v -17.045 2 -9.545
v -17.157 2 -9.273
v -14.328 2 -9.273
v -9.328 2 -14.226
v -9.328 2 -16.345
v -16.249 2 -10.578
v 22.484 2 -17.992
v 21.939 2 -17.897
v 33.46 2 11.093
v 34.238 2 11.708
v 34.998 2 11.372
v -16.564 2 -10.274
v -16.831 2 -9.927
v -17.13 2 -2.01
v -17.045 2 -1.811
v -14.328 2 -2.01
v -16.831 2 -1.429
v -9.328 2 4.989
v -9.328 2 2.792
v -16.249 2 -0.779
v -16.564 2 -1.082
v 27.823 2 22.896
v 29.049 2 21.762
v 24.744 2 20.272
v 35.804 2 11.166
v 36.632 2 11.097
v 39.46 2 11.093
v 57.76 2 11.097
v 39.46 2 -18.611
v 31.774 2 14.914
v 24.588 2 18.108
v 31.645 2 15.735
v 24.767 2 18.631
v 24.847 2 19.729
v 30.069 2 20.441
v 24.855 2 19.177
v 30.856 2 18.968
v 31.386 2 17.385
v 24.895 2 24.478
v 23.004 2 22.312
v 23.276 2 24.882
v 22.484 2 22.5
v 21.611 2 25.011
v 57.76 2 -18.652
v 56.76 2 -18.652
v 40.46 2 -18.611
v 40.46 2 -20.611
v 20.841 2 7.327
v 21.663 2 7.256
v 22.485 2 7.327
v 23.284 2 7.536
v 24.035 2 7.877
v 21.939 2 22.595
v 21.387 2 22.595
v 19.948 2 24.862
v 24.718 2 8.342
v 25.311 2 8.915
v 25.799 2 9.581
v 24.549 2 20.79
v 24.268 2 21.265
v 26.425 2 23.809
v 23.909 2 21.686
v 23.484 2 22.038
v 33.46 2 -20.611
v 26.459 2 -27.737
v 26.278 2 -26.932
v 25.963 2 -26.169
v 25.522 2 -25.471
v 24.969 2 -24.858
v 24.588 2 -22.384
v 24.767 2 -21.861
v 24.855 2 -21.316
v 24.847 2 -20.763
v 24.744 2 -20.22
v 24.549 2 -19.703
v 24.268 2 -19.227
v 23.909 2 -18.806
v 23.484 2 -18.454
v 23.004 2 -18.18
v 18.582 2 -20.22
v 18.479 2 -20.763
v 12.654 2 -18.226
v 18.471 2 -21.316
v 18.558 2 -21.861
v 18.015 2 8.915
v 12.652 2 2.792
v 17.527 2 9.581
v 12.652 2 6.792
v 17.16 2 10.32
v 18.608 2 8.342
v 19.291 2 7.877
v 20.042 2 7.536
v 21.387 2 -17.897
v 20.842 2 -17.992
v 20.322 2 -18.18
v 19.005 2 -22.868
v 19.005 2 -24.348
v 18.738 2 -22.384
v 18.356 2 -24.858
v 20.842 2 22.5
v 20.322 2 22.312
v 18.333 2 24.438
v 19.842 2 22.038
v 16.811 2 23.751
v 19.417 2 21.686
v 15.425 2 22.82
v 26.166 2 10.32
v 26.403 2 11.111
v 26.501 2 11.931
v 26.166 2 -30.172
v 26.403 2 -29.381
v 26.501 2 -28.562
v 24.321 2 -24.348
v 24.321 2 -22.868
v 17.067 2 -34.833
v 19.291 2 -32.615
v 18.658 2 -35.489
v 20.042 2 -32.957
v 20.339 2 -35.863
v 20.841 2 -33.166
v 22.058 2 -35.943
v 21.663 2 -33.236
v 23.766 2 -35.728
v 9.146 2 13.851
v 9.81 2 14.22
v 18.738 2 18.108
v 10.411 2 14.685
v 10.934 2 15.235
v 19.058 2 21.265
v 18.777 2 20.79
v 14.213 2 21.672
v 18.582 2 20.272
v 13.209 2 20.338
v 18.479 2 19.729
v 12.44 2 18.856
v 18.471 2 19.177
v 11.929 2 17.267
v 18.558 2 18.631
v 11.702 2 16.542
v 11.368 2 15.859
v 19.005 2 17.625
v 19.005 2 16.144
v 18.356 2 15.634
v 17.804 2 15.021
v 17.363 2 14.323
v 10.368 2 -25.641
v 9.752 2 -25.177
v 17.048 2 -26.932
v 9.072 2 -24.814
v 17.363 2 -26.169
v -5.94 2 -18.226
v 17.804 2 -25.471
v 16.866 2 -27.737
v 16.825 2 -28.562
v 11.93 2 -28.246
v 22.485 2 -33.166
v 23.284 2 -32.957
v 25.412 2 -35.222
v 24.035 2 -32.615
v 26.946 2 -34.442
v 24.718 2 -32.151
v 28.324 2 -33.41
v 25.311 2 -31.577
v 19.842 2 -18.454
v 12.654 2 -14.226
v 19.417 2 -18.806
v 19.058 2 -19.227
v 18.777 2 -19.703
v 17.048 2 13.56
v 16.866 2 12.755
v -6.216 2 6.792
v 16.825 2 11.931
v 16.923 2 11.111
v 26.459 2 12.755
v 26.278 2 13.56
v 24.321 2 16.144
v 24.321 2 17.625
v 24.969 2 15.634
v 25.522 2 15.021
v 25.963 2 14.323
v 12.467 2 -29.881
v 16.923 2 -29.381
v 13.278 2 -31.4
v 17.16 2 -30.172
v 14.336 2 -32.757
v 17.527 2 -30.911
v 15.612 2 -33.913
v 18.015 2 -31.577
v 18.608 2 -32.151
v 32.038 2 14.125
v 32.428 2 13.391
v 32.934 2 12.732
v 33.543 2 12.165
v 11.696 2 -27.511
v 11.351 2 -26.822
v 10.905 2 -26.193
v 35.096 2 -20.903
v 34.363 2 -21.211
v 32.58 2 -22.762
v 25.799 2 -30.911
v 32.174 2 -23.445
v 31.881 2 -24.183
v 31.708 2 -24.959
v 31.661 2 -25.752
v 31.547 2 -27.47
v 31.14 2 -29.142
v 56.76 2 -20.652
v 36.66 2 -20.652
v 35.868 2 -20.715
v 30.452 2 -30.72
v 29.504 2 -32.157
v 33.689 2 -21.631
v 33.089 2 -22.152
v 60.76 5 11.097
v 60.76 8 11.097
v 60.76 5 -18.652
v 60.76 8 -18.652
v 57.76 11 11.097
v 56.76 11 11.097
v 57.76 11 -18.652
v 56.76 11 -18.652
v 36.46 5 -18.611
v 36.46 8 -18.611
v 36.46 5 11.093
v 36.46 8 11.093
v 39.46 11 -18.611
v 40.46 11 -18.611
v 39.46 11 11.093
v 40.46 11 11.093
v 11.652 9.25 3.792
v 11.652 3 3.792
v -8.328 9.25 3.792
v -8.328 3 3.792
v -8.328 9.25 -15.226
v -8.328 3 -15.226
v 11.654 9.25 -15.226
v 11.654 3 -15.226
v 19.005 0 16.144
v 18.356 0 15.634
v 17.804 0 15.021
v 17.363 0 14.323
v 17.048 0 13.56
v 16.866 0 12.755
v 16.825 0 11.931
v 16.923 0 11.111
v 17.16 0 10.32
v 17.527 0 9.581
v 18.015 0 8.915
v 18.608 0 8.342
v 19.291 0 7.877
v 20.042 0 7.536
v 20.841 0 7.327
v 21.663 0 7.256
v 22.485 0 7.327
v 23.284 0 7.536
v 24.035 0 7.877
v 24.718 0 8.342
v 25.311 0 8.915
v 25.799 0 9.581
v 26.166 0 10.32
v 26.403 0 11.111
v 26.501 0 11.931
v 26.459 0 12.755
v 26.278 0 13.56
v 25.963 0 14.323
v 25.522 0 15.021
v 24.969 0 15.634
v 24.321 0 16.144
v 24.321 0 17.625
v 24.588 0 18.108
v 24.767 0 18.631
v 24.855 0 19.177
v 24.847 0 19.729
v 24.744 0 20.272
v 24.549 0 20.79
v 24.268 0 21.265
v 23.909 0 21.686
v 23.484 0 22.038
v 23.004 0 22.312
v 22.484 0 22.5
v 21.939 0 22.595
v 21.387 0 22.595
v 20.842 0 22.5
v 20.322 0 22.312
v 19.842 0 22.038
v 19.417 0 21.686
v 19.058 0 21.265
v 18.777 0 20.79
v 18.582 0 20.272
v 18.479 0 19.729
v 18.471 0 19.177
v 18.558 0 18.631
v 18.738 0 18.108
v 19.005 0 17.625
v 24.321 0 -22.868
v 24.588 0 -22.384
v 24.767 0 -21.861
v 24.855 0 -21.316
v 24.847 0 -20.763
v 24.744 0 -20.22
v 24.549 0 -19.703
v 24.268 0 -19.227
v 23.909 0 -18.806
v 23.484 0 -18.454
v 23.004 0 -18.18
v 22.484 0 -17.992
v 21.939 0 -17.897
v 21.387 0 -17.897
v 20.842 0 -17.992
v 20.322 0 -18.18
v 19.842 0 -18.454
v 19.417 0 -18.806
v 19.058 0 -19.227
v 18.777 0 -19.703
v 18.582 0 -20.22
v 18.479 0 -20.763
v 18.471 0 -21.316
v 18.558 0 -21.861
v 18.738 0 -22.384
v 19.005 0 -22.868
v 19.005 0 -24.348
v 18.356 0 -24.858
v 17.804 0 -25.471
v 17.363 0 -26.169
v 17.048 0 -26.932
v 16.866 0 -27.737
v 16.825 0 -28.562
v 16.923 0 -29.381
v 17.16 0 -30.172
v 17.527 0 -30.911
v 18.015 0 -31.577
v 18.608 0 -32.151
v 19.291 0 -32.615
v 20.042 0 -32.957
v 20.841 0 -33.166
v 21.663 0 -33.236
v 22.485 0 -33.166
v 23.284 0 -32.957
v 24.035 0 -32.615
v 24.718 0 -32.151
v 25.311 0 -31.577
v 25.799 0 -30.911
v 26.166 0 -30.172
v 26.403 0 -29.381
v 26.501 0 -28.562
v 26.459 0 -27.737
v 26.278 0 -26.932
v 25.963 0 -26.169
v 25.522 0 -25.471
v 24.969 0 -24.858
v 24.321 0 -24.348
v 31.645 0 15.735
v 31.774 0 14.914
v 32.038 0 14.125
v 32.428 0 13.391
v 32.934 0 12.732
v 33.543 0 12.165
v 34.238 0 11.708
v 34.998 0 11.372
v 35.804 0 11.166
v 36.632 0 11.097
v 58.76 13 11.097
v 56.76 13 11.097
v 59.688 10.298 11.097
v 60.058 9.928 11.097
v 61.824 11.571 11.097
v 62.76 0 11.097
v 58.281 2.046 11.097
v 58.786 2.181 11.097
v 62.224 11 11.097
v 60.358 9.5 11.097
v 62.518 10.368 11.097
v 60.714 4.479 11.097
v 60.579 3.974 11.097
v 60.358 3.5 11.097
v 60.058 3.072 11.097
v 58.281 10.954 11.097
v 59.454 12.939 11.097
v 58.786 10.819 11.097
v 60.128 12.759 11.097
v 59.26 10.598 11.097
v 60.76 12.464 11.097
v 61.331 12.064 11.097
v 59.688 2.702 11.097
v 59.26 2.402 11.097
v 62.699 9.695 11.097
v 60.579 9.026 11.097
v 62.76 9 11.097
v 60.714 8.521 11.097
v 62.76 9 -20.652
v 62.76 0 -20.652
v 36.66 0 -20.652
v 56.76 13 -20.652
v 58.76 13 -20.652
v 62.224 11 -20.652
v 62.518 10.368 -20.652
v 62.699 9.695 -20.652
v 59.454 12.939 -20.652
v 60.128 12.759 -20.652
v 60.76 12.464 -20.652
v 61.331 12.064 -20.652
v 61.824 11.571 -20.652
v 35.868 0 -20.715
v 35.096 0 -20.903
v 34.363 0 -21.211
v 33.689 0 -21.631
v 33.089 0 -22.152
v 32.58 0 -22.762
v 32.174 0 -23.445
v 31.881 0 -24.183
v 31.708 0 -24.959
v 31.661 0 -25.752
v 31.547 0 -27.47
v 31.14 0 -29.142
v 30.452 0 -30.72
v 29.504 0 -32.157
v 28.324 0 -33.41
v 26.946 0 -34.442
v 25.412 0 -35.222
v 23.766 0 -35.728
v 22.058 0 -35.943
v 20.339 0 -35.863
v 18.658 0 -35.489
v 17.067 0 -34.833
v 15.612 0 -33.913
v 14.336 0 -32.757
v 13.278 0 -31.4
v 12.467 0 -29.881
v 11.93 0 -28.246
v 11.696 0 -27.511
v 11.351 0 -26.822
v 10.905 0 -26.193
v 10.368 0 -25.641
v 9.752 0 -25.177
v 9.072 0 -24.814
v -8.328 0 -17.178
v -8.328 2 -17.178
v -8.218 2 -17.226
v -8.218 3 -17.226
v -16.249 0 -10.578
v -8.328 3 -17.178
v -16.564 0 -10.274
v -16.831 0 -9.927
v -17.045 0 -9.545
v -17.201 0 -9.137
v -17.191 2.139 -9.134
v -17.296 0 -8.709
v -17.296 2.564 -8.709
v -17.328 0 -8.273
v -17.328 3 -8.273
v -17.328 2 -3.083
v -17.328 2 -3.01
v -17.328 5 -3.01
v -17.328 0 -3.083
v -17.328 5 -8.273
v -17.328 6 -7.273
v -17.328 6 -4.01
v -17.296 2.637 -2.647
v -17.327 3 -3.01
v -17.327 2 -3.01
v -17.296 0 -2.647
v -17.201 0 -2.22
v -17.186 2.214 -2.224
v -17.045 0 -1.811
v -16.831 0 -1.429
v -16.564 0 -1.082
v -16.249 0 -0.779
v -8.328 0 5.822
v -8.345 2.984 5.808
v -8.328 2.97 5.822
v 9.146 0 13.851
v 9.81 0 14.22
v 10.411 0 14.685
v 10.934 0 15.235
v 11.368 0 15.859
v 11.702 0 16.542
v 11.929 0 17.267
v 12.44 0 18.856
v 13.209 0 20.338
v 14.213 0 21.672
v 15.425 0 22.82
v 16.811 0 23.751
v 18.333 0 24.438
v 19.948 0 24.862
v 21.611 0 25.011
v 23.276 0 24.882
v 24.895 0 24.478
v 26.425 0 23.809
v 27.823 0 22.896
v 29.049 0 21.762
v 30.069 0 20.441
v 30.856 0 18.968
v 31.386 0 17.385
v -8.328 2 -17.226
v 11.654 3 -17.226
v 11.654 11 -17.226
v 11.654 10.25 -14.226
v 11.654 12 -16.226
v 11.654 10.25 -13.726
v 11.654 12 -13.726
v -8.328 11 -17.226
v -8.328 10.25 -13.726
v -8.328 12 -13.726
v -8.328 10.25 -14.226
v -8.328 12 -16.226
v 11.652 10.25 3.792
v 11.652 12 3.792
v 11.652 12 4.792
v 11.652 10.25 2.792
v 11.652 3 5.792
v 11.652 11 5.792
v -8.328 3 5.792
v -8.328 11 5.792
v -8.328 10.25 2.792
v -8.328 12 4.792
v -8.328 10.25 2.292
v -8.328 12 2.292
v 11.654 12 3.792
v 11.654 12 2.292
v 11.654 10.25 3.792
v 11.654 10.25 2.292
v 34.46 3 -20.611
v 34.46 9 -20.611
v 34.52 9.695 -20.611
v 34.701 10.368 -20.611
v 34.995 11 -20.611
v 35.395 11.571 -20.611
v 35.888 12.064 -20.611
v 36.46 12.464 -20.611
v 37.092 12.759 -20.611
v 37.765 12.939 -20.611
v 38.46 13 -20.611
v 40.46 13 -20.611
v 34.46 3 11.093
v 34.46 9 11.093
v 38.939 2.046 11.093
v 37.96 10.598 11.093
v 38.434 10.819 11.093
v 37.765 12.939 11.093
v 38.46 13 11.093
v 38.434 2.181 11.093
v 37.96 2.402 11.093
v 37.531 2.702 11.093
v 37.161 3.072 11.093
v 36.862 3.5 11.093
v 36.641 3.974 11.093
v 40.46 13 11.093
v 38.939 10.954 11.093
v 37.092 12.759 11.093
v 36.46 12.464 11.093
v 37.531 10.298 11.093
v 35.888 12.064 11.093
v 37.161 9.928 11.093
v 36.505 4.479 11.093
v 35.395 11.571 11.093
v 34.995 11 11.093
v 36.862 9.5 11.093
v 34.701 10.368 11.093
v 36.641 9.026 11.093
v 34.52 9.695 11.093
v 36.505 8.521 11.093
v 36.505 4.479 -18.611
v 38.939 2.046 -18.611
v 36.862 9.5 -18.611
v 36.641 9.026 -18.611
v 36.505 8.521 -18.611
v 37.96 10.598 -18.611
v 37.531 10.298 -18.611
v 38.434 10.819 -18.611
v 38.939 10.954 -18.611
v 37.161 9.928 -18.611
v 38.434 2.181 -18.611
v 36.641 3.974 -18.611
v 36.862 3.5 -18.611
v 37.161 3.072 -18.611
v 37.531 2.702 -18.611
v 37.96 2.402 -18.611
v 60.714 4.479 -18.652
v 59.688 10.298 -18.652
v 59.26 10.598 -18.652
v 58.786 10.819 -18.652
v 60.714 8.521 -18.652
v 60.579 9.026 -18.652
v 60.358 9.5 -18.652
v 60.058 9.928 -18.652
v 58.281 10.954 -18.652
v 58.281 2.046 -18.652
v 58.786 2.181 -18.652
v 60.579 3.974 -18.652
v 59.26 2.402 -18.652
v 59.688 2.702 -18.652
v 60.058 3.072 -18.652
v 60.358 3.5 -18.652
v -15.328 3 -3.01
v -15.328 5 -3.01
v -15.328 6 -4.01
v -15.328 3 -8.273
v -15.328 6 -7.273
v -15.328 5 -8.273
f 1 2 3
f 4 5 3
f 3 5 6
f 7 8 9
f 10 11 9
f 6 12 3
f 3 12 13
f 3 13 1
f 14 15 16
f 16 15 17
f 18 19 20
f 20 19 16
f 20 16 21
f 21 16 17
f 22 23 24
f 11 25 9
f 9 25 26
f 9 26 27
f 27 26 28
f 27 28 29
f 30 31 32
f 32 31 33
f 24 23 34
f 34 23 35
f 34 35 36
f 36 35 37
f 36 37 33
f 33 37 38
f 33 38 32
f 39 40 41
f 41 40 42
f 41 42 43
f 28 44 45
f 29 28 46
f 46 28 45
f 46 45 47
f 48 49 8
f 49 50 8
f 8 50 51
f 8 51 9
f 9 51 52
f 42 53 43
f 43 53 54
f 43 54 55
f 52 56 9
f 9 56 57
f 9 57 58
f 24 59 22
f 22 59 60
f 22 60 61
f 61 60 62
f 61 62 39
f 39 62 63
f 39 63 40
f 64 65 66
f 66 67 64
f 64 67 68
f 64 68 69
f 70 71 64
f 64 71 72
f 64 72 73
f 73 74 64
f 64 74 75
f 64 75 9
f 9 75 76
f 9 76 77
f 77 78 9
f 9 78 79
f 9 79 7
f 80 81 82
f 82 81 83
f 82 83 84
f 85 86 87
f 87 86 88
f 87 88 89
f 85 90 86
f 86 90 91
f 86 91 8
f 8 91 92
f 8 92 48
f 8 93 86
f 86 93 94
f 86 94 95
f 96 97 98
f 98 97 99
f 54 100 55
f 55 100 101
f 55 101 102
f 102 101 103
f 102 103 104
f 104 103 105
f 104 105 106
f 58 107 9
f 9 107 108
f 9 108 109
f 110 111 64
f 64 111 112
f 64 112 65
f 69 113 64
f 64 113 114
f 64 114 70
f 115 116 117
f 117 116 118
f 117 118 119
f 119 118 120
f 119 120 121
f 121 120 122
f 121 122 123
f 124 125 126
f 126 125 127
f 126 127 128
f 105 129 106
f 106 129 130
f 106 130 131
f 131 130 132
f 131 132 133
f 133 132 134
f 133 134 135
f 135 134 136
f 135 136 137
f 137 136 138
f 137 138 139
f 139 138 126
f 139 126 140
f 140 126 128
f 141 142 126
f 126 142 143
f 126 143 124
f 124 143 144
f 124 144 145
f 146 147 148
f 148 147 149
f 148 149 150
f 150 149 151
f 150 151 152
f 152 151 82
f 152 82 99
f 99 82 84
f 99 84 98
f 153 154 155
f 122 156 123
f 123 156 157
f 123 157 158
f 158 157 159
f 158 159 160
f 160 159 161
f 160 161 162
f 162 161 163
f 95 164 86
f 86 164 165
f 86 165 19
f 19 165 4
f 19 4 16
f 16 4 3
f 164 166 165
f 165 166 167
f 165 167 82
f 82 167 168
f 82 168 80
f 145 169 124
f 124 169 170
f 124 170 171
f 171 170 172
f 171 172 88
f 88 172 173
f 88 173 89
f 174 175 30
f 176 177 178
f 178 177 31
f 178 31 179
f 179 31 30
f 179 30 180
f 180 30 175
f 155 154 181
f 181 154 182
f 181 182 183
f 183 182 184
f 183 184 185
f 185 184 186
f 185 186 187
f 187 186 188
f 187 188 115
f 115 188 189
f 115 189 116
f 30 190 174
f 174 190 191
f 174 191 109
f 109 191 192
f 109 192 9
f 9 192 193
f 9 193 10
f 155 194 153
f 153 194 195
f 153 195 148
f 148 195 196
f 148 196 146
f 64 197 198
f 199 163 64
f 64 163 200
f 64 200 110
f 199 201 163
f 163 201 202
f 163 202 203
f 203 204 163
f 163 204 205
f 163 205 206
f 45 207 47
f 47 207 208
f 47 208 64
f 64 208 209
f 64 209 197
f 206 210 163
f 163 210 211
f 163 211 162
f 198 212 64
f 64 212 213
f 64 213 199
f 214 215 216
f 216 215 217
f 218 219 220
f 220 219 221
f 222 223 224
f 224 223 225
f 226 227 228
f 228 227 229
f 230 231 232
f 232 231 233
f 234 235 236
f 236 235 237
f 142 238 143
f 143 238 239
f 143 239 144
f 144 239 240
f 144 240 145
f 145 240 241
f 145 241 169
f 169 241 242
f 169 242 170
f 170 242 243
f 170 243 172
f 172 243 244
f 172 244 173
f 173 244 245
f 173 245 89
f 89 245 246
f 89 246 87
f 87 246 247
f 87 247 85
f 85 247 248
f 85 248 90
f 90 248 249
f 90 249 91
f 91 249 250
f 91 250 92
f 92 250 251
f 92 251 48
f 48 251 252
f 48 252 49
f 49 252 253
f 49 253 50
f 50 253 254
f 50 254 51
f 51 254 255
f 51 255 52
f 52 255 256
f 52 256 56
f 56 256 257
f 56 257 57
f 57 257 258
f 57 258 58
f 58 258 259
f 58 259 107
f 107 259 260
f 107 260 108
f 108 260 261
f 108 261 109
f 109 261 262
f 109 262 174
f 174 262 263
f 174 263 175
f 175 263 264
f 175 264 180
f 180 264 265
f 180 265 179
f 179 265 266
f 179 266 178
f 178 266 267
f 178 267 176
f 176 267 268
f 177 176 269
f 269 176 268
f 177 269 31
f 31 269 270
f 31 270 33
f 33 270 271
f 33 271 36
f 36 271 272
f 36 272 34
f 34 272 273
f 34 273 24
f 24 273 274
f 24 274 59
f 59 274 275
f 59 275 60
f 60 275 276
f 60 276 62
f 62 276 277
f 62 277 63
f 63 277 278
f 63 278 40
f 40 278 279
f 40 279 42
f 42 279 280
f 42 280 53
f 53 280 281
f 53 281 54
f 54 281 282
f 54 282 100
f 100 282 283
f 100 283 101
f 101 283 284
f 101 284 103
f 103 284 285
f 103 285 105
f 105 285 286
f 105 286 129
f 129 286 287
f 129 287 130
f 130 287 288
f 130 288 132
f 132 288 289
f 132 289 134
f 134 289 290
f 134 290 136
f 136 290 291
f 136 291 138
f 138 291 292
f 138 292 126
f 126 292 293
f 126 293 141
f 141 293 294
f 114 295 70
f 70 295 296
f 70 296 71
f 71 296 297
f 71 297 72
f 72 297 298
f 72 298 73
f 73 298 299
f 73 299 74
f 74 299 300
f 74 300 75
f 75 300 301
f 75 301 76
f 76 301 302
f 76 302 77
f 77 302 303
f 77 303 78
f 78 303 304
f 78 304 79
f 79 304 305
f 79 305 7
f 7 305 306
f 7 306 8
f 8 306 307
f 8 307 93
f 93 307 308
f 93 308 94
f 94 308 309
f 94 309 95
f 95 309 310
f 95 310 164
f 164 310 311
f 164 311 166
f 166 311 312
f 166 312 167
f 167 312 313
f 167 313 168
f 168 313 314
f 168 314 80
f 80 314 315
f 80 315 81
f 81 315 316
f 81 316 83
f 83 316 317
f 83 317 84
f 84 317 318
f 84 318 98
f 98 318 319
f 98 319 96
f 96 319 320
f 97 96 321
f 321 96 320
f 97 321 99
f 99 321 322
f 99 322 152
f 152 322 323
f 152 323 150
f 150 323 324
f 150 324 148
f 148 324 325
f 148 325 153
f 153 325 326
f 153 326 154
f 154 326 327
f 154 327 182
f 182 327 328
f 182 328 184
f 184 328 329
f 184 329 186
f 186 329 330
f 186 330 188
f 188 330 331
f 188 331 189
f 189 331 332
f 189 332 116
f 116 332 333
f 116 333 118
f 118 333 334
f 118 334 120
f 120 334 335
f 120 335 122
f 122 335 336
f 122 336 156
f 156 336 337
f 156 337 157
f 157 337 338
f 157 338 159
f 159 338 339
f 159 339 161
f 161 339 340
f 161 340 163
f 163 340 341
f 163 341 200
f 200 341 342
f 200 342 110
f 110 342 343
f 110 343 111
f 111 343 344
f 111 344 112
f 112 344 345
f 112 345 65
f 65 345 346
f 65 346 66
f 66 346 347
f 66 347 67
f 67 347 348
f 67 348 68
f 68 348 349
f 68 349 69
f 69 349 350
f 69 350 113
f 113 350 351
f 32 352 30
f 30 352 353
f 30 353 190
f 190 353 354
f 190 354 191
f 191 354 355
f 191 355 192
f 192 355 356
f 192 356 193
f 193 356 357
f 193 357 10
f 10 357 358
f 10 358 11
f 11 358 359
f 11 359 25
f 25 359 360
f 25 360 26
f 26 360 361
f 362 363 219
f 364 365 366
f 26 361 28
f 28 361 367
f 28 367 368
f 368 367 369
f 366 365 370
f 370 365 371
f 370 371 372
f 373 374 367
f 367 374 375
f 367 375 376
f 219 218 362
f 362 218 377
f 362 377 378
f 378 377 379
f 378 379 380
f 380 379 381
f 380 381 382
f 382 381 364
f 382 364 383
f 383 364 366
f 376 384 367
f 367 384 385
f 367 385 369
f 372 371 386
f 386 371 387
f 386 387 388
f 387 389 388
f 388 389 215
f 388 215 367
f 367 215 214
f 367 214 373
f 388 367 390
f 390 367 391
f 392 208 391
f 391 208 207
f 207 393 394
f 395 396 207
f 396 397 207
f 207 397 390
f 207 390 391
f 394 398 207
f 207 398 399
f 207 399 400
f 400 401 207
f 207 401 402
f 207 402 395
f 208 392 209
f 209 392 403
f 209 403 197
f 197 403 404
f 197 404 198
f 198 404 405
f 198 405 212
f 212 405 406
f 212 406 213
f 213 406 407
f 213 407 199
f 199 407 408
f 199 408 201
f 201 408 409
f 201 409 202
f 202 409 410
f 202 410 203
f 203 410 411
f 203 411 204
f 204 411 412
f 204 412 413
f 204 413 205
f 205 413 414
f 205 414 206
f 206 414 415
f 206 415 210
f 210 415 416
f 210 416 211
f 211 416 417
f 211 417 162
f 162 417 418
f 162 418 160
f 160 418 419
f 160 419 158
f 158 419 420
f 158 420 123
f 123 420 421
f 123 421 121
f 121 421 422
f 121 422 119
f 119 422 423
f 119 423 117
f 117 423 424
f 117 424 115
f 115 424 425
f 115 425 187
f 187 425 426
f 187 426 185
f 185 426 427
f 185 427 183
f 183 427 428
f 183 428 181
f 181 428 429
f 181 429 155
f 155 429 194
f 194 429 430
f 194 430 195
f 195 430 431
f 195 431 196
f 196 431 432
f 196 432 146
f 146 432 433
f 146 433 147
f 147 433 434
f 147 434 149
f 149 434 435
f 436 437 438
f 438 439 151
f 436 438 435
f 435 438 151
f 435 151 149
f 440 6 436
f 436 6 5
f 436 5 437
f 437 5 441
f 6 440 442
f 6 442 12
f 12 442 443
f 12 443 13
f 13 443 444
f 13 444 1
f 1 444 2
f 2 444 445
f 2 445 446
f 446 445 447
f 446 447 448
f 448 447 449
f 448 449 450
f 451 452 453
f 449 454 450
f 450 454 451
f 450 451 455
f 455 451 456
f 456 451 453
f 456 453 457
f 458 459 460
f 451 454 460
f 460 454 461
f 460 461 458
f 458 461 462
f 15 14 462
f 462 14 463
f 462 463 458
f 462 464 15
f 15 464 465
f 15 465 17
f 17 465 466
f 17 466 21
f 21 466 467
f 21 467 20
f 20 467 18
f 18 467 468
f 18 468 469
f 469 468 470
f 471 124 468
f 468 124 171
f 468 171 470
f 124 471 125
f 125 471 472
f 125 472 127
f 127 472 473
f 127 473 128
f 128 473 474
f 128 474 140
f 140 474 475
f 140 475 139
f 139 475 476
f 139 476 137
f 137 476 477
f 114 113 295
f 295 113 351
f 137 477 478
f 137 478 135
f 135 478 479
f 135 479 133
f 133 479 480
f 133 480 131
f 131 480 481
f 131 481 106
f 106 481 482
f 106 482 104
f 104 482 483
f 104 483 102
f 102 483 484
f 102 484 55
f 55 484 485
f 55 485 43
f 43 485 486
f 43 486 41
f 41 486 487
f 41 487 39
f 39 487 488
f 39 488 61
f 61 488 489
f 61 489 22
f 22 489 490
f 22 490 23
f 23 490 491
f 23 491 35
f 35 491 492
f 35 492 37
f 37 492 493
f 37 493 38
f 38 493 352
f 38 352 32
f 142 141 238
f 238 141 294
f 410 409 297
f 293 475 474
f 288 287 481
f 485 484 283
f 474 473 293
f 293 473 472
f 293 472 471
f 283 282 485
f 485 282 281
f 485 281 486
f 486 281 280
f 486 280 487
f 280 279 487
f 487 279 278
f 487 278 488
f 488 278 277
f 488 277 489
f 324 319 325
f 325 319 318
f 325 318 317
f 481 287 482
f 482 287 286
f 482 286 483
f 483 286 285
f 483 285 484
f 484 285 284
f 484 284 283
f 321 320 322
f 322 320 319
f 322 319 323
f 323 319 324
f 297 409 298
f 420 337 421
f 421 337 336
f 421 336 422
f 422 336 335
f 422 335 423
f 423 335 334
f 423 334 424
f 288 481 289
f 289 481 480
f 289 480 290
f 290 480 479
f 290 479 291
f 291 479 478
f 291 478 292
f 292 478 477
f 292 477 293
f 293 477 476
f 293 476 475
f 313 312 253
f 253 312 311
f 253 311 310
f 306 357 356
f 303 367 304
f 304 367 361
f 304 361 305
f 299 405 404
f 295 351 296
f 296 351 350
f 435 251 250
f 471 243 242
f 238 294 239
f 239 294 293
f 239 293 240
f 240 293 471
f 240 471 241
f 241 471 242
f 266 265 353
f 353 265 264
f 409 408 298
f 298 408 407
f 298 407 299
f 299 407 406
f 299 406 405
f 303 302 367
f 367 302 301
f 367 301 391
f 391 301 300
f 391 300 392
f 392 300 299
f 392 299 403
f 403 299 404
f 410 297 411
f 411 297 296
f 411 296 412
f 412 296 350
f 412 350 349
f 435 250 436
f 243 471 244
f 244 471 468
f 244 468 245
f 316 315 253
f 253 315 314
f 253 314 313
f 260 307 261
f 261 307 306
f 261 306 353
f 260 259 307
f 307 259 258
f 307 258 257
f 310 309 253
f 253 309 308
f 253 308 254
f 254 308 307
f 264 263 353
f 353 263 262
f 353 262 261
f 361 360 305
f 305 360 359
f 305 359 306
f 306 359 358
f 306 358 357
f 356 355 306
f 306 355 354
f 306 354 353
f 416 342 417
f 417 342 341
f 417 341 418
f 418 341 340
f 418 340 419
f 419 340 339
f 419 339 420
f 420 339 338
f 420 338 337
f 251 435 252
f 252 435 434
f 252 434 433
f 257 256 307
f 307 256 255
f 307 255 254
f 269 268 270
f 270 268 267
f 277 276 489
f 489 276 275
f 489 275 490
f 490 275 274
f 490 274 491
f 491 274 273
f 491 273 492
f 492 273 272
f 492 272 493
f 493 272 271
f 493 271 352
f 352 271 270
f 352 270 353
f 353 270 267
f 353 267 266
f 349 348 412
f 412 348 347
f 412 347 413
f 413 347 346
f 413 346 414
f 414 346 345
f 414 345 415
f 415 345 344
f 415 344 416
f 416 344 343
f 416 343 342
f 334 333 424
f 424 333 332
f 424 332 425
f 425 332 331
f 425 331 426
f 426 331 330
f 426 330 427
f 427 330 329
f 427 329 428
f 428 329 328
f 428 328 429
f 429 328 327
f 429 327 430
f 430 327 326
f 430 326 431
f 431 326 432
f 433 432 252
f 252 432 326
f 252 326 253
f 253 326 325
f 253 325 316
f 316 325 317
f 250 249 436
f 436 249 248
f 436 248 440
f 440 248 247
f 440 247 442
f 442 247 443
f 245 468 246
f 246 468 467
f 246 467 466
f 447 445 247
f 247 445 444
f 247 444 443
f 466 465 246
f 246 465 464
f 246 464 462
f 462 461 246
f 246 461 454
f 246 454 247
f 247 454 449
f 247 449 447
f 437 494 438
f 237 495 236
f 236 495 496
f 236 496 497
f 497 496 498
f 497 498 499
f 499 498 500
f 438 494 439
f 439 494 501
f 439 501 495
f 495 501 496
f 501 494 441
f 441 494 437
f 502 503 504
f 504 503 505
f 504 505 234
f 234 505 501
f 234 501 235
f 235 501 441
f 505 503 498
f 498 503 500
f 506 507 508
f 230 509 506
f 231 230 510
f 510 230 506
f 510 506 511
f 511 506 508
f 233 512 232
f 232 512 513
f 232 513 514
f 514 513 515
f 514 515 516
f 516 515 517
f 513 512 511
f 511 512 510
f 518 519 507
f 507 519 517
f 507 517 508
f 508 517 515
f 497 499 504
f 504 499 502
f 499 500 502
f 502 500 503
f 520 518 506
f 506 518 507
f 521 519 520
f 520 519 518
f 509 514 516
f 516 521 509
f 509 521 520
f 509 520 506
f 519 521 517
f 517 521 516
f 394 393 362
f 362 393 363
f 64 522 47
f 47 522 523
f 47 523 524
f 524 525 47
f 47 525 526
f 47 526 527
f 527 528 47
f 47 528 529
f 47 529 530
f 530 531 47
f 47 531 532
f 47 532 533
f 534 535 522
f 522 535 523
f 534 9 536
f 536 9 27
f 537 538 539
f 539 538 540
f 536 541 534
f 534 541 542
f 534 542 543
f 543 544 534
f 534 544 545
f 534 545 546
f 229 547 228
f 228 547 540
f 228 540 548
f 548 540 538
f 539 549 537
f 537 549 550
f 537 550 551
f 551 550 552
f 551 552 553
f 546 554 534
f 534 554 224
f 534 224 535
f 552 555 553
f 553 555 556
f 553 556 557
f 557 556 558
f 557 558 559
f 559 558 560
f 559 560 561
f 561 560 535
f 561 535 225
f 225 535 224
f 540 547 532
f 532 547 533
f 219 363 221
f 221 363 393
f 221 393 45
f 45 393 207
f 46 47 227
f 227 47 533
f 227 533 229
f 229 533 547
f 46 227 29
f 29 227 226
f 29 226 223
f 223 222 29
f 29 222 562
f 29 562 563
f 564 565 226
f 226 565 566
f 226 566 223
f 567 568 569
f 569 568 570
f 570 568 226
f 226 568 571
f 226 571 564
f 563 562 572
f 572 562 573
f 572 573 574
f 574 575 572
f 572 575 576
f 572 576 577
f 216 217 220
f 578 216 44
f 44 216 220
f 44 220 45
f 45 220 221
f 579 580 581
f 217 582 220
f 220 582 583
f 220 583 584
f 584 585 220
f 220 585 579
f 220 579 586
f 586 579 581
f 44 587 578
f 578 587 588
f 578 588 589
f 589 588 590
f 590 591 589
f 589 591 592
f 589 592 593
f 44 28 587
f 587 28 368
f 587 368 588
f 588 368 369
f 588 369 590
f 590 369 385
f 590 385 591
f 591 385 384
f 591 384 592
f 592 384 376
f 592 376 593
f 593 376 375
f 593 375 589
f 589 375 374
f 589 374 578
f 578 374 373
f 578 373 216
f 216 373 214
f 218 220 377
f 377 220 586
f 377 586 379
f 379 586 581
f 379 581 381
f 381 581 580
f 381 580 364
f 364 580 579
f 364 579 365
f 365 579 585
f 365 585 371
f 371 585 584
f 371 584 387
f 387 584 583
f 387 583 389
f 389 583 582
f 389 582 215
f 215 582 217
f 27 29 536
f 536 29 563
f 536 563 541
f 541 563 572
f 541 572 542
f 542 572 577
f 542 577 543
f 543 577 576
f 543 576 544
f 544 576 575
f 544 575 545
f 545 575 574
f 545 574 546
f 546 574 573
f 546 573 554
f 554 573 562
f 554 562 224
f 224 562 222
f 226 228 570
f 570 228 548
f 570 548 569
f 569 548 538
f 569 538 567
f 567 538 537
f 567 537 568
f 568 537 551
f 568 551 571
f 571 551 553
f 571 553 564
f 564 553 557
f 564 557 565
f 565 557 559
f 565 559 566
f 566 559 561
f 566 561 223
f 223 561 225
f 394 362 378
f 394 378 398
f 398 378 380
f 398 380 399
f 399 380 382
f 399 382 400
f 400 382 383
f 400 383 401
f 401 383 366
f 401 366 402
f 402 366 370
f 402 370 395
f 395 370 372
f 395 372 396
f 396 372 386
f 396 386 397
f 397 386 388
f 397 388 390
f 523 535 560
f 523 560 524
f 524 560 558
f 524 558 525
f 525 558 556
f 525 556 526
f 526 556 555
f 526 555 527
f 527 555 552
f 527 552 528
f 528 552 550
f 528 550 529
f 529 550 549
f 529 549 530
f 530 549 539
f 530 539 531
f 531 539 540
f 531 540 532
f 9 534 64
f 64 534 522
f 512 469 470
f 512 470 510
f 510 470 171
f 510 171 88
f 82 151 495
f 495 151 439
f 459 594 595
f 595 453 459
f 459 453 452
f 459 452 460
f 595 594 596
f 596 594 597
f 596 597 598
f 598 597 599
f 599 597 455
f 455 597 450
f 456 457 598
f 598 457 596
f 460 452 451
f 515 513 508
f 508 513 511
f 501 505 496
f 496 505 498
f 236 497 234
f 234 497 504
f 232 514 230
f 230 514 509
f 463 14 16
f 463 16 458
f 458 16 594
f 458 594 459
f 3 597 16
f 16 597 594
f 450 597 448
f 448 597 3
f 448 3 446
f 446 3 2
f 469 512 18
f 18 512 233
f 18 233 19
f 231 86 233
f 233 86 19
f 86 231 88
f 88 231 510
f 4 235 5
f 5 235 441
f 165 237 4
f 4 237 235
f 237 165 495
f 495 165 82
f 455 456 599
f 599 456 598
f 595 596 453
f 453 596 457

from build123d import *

# Parameters (mm, degrees)
BOSS_EXTRUDE3_DEPTH  = 2
SKETCH2_W            = 19.982686102
SKETCH2_H            = 2
SKETCH2_W_2          = 19.980275276
BOSS_EXTRUDE4_DEPTH  = 10
SKETCH4_W            = 19.982686102
SKETCH4_H            = 1.75
BOSS_EXTRUDE6_DEPTH  = 1.5
SKETCH5_W            = 19.982686102
SKETCH5_H            = 1.75
BOSS_EXTRUDE7_DEPTH  = 1.5
SKETCH6_W            = 2
SKETCH6_H            = 31.703693322
SKETCH6_H_2          = 31.749526842
BOSS_EXTRUDE8_DEPTH  = 11
SKETCH7_W            = 31.749526842
SKETCH7_H            = 2
BOSS_EXTRUDE9_DEPTH  = 4
SKETCH8_W            = 31.703693322
SKETCH8_H            = 2
BOSS_EXTRUDE10_DEPTH = 4
SKETCH9_W            = 2
SKETCH9_H            = 9
BOSS_EXTRUDE11_DEPTH = 4
SKETCH11_W           = 2
SKETCH11_H           = 9
BOSS_EXTRUDE12_DEPTH = 4
FILLET3_R            = 3
FILLET4_R            = 4
FILLET5_R            = 4
CHAMFER3_SIZE        = 1
SKETCH13_W           = 2
SKETCH13_H           = 5.263388165
BOSS_EXTRUDE13_DEPTH = 4
CHAMFER4_SIZE        = 1
CHAMFER5_SIZE        = 1


with BuildPart() as part:
    # Sketch1 → Boss-Extrude3 (new body)
    with BuildSketch(Plane(origin=(0, 0, 0), x_dir=(1, 0, 0), z_dir=(0, 1, 0))):
        with BuildLine():
            Line((-8.328383402, 17.178082192), (-11.926539406, 14.179618856))
            Line((-11.926539406, 14.179618856), (-16.248936601, 10.577621193))
            ThreePointArc((-16.248936601, 10.577621193), (-17.045151666, 9.545423543), (-17.328383402, 8.272957354))
            Line((-17.328383402, 8.272957354), (-17.328383402, 3.08320703))
            ThreePointArc((-17.328383402, 3.08320703), (-17.045151666, 1.810740841), (-16.248936601, 0.778543191))
            Line((-16.248936601, 0.778543191), (-11.926539406, -2.823454472))
            Line((-11.926539406, -2.823454472), (-8.328383402, -5.821917808))
            Line((-8.328383402, -5.821917808), (9.145578492, -13.850782578))
            ThreePointArc((9.145578492, -13.850782578), (10.93396709, -15.23549913), (11.929216114, -17.266571036))
            ThreePointArc((11.929216114, -17.266571036), (22.445955603, -24.981411148), (31.645385182, -15.735273423))
            ThreePointArc((31.645385182, -15.735273423), (33.227096416, -12.435935871), (36.632269474, -11.097192))
            Line((36.632269474, -11.097192), (62.759585841, -11.097192))
            Line((62.759585841, -11.097192), (62.759585841, 20.652334842))
            Line((62.759585841, 20.652334842), (36.659964719, 20.652334842))
            ThreePointArc((36.659964719, 20.652334842), (33.089388299, 22.15219427), (31.660956961, 25.751941231))
            ThreePointArc((31.660956961, 25.751941231), (22.916780781, 35.872236959), (11.929724224, 28.245600027))
            ThreePointArc((11.929724224, 28.245600027), (10.905359885, 26.19326698), (9.072373225, 24.814298837))
            Line((9.072373225, 24.814298837), (-8.328383402, 17.178082192))
        make_face()
        with BuildLine():
            Line((24.320629097, -16.144178085), (24.320629097, -17.62452967))
            ThreePointArc((24.320629097, -17.62452967), (21.662941444, -22.60685858), (19.005253792, -17.62452967))
            Line((19.005253792, -17.62452967), (19.005253792, -16.144178085))
            ThreePointArc((19.005253792, -16.144178085), (21.662941444, -7.256310151), (24.320629097, -16.144178085))
        make_face(mode=Mode.SUBTRACT)
        with BuildLine():
            Line((24.320629097, 24.348091169), (24.320629097, 22.867739584))
            ThreePointArc((24.320629097, 22.867739584), (21.662941444, 17.885410674), (19.005253792, 22.867739584))
            Line((19.005253792, 22.867739584), (19.005253792, 24.348091169))
            ThreePointArc((19.005253792, 24.348091169), (21.662941444, 33.235959102), (24.320629097, 24.348091169))
        make_face(mode=Mode.SUBTRACT)
    extrude(amount=BOSS_EXTRUDE3_DEPTH)

    # Sketch2 → Boss-Extrude4 (add)
    with BuildSketch(Plane(origin=(0, 2, 0), x_dir=(1, 0, 0), z_dir=(0, 1, 0))):
        with Locations((1.662959649, 16.226428568)):
            Rectangle(SKETCH2_W, SKETCH2_H)
        with Locations((1.661754236, -4.792288058)):
            Rectangle(SKETCH2_W_2, SKETCH2_H)
    extrude(amount=BOSS_EXTRUDE4_DEPTH)

    # Sketch4 → Boss-Extrude6 (add)
    with BuildSketch(Plane.XY.offset(-15.226428568)):
        with Locations((1.662959649, 11.125)):
            Rectangle(SKETCH4_W, SKETCH4_H)
    extrude(amount=BOSS_EXTRUDE6_DEPTH)

    # Sketch5 → Boss-Extrude7 (add)
    with BuildSketch(Plane(origin=(0, 0, 3.792288058), x_dir=(-1, 0, 0), z_dir=(0, 0, -1))):
        with Locations((-1.662959649, 11.125)):
            Rectangle(SKETCH5_W, SKETCH5_H)
    extrude(amount=BOSS_EXTRUDE7_DEPTH)

    # Sketch6 → Boss-Extrude8 (add)
    with BuildSketch(Plane(origin=(0, 2, 0), x_dir=(1, 0, 0), z_dir=(0, 1, 0))):
        with Locations((35.459585841, 4.759099079)):
            Rectangle(SKETCH6_W, SKETCH6_H)
        with Locations((61.759585841, 4.777571421)):
            Rectangle(SKETCH6_W, SKETCH6_H_2)
    extrude(amount=BOSS_EXTRUDE8_DEPTH)

    # Sketch7 → Boss-Extrude9 (add)
    with BuildSketch(Plane.ZY.offset(-60.759585841)):
        with Locations((-4.777571421, 12)):
            Rectangle(SKETCH7_W, SKETCH7_H)
    extrude(amount=BOSS_EXTRUDE9_DEPTH)

    # Sketch8 → Boss-Extrude10 (add)
    with BuildSketch(Plane(origin=(36.459585841, 0, 0), x_dir=(0, 0, -1), z_dir=(1, 0, 0))):
        with Locations((4.759099079, 12)):
            Rectangle(SKETCH8_W, SKETCH8_H)
    extrude(amount=BOSS_EXTRUDE10_DEPTH)

    # Sketch9 → Boss-Extrude11 (add)
    with BuildSketch(Plane(origin=(36.459585841, 0, 0), x_dir=(0, 0, -1), z_dir=(1, 0, 0))):
        with Locations((19.61094574, 6.5)):
            Rectangle(SKETCH9_W, SKETCH9_H)
    extrude(amount=BOSS_EXTRUDE11_DEPTH)

    # Sketch11 → Boss-Extrude12 (add)
    with BuildSketch(Plane.ZY.offset(-60.759585841)):
        with Locations((-19.652334842, 6.5)):
            Rectangle(SKETCH11_W, SKETCH11_H)
    extrude(amount=BOSS_EXTRUDE12_DEPTH)

    # Fillet3
    fillet3_edges = [part.edges().sort_by_distance(p)[0] for p in [
        (36.459585841, 2, -3.759099079),
        (36.459585841, 11, -3.759099079),
        (60.759585841, 11, -3.777571421),
        (60.759585841, 2, -3.777571421),
    ]]
    fillet(fillet3_edges, radius=FILLET3_R)

    # Fillet4
    fillet4_edges = [part.edges().sort_by_distance(p)[0] for p in [
        (62.759585841, 13, -4.777571421),
    ]]
    fillet(fillet4_edges, radius=FILLET4_R)

    # Fillet5
    fillet5_edges = [part.edges().sort_by_distance(p)[0] for p in [
        (34.459585841, 13, -4.759099079),
    ]]
    fillet(fillet5_edges, radius=FILLET5_R)

    # Chamfer3
    # the kernel refuses this chamfer: 1 mm, written as the material it adds along each edge
    with BuildSketch(Plane(origin=(34.459585841, 2, -20.61094574), x_dir=(0, 1, 0), z_dir=(0, 0, 1))) as chamfer3_piece_1:
        Polygon((CHAMFER3_SIZE, 0), (0, CHAMFER3_SIZE), (0, 0), align=None)
    extrude(amount=31.703693323)
    with BuildSketch(Plane(origin=(11.6543027, 2, -17.226428568), x_dir=(0, 0, -1), z_dir=(-1, 0, 0))) as chamfer3_piece_2_section:
        Polygon((CHAMFER3_SIZE, 0), (0, -CHAMFER3_SIZE), (0, 0), align=None)
    chamfer3_piece_2 = extrude(amount=22.444201507, mode=Mode.PRIVATE)
    chamfer3_piece_2 = split(chamfer3_piece_2, bisect_by=Plane(origin=(8.445196081, 2, -24.539065946), z_dir=(0.40185152236711835, 0, 0.9157048399846042)), keep=Keep.TOP, mode=Mode.PRIVATE)
    add(chamfer3_piece_2)
    with BuildSketch(Plane(origin=(11.651891874, 2, 5.792288058), x_dir=(0, 0, 1), z_dir=(-1, 0, 0))) as chamfer3_piece_3_section:
        Polygon((CHAMFER3_SIZE, 0), (0, CHAMFER3_SIZE), (0, 0), align=None)
    chamfer3_piece_3 = extrude(amount=19.980275276, mode=Mode.PRIVATE)
    chamfer3_piece_3 = split(chamfer3_piece_3, bisect_by=Plane(origin=(8.15775509, 2, 13.396901508), z_dir=(0.4175125238289849, 0, -0.9086711684905334)), keep=Keep.TOP, mode=Mode.PRIVATE)
    add(chamfer3_piece_3)

    # Sketch13 → Boss-Extrude13 (add)
    with BuildSketch(Plane(origin=(0, 2, 0), x_dir=(1, 0, 0), z_dir=(0, 1, 0))):
        with Locations((-16.328383402, 5.641263272)):
            Rectangle(SKETCH13_W, SKETCH13_H)
    extrude(amount=BOSS_EXTRUDE13_DEPTH)

    # Chamfer4
    # the kernel refuses this chamfer: 1 mm, written as the material it adds along each edge
    with BuildSketch(Plane(origin=(11.6543027, 10.25, -15.226428568), x_dir=(0, -1, 0), z_dir=(-1, 0, 0))) as chamfer4_piece_1:
        Polygon((CHAMFER4_SIZE, 0), (0, CHAMFER4_SIZE), (0, 0), align=None)
    extrude(amount=19.982686102)
    with BuildSketch(Plane(origin=(11.651891874, 10.25, 3.792288058), x_dir=(0, -1, 0), z_dir=(-1, 0, 0))) as chamfer4_piece_2:
        Polygon((CHAMFER4_SIZE, 0), (0, -CHAMFER4_SIZE), (0, 0), align=None)
    extrude(amount=19.980275276)
    with BuildSketch(Plane(origin=(-19.90006639, 2, -8.272957354), x_dir=(0, 0, -1), z_dir=(1, 0, 0))) as chamfer4_piece_3_section:
        Polygon((CHAMFER4_SIZE, 0), (0, CHAMFER4_SIZE), (0, 0), align=None)
    chamfer4_piece_3 = extrude(amount=4.571682988, mode=Mode.PRIVATE)
    chamfer4_piece_3 = chamfer4_piece_3 & Plane(origin=(-14.328383402, 2, -8.272957354), x_dir=(-0.6401843996644775, 0, -0.7682212795973778), z_dir=(0, -1, 0)) * Cylinder(3, 14, mode=Mode.PRIVATE)
    add(chamfer4_piece_3)
    with BuildSketch(Plane(origin=(-15.328383402, 2, -3.009569189), x_dir=(0, 0, 1), z_dir=(-1, 0, 0))) as chamfer4_piece_4_section:
        Polygon((CHAMFER4_SIZE, 0), (0, CHAMFER4_SIZE), (0, 0), align=None)
    chamfer4_piece_4 = extrude(amount=4.570779097, mode=Mode.PRIVATE)
    chamfer4_piece_4 = chamfer4_piece_4 & Plane(origin=(-14.328383402, 2, -3.08320703), x_dir=(-1, 0, 0), z_dir=(0, -1, 0)) * Cylinder(3, 14, mode=Mode.PRIVATE)
    add(chamfer4_piece_4)
    with BuildSketch(Plane(origin=(-15.328383402, 2, -8.272957354), x_dir=(1, 0, 0), z_dir=(0, 0, 1))) as chamfer4_piece_5:
        Polygon((CHAMFER4_SIZE, 0), (0, CHAMFER4_SIZE), (0, 0), align=None)
    extrude(amount=5.263388164)
    with BuildSketch(Plane(origin=(11.651891874, 2, 9.363971046), x_dir=(0, 1, 0), z_dir=(0, 0, -1))) as chamfer4_piece_6_section:
        Polygon((CHAMFER4_SIZE, 0), (0, CHAMFER4_SIZE), (0, 0), align=None)
    chamfer4_piece_6 = extrude(amount=5.571682988, mode=Mode.PRIVATE)
    chamfer4_piece_6 = split(chamfer4_piece_6, bisect_by=Plane(origin=(11.651891874, 0.714158506, 8.078129552), z_dir=(0, -0.7071067811865476, -0.7071067811865476)), keep=Keep.TOP, mode=Mode.PRIVATE)
    add(chamfer4_piece_6)
    with BuildSketch(Plane(origin=(-8.328383402, 2, 3.792288058), x_dir=(0, 1, 0), z_dir=(0, 0, 1))) as chamfer4_piece_7_section:
        Polygon((CHAMFER4_SIZE, 0), (0, CHAMFER4_SIZE), (0, 0), align=None)
    chamfer4_piece_7 = extrude(amount=4.601312738, mode=Mode.PRIVATE)
    chamfer4_piece_7 = split(chamfer4_piece_7, bisect_by=Plane(origin=(-8.328383402, 3.5, 5.292288058), z_dir=(0, -0.7071067811865476, -0.7071067811865476)), keep=Keep.TOP, mode=Mode.PRIVATE)
    chamfer4_piece_7 = split(chamfer4_piece_7, bisect_by=Plane(origin=(-9.326561968, 2, 4.990102337), z_dir=(0.6401843996644799, 0, -0.7682212795973757)), keep=Keep.TOP, mode=Mode.PRIVATE)
    add(chamfer4_piece_7)
    with BuildSketch(Plane(origin=(-8.328383402, 2, 3.792288058), x_dir=(0, 0, -1), z_dir=(1, 0, 0))) as chamfer4_piece_8:
        Polygon((CHAMFER4_SIZE, 0), (0, CHAMFER4_SIZE), (0, 0), align=None)
    extrude(amount=19.980275276)
    with BuildSketch(Plane(origin=(11.6543027, 2, -15.226428568), x_dir=(1, 0, 0), z_dir=(0, 0, -1))) as chamfer4_piece_9_section:
        Polygon((CHAMFER4_SIZE, 0), (0, -CHAMFER4_SIZE), (0, 0), align=None)
    chamfer4_piece_9 = extrude(amount=5.571682988, mode=Mode.PRIVATE)
    chamfer4_piece_9 = split(chamfer4_piece_9, bisect_by=Plane(origin=(11.6543027, 3.5, -16.726428568), z_dir=(0, -0.7071067811865476, 0.7071067811865476)), keep=Keep.TOP, mode=Mode.PRIVATE)
    add(chamfer4_piece_9)
    with BuildSketch(Plane(origin=(-8.328383402, 2, -19.74976518), x_dir=(-1, 0, 0), z_dir=(0, 0, 1))) as chamfer4_piece_10_section:
        Polygon((CHAMFER4_SIZE, 0), (0, -CHAMFER4_SIZE), (0, 0), align=None)
    chamfer4_piece_10 = extrude(amount=4.523336611, mode=Mode.PRIVATE)
    chamfer4_piece_10 = split(chamfer4_piece_10, bisect_by=Plane(origin=(-7.063621277, 2, -18.232050629), z_dir=(0.6401843996644802, 0, 0.7682212795973757)), keep=Keep.TOP, mode=Mode.PRIVATE)
    add(chamfer4_piece_10)
    with BuildSketch(Plane(origin=(-8.328383402, 2, -15.226428568), x_dir=(0, 0, 1), z_dir=(1, 0, 0))) as chamfer4_piece_11:
        Polygon((CHAMFER4_SIZE, 0), (0, -CHAMFER4_SIZE), (0, 0), align=None)
    extrude(amount=19.982686102)
    with BuildSketch(Plane(origin=(-15.328383402, 2, -10.844640342), x_dir=(1, 0, 0), z_dir=(0, 0, 1))) as chamfer4_piece_12a_section:
        Polygon((CHAMFER4_SIZE, 0), (0, CHAMFER4_SIZE), (0, 0), align=None)
    chamfer4_piece_12a = extrude(amount=7.835071152, mode=Mode.PRIVATE)
    chamfer4_piece_12a = split(chamfer4_piece_12a, bisect_by=Plane(origin=(-15.328383402, 2, -8.272957354), z_dir=(0, 0, -1)), keep=Keep.TOP, mode=Mode.PRIVATE)
    with BuildSketch(Plane(origin=(-17.328383402, 2, -8.272957354), x_dir=(0, 0, -1), z_dir=(1, 0, 0))) as chamfer4_piece_12b_section:
        Polygon((CHAMFER4_SIZE, 0), (0, CHAMFER4_SIZE), (0, 0), align=None)
    chamfer4_piece_12b = extrude(amount=4.571682988, mode=Mode.PRIVATE)
    chamfer4_piece_12b = split(chamfer4_piece_12b, bisect_by=Plane(origin=(-15.328383402, 2, -8.272957354), z_dir=(1, 0, 0)), keep=Keep.TOP, mode=Mode.PRIVATE)
    chamfer4_piece_12 = chamfer4_piece_12a & chamfer4_piece_12b
    add(chamfer4_piece_12)
    with BuildSketch(Plane(origin=(-12.756700414, 2, -3.009569189), x_dir=(0, 0, 1), z_dir=(-1, 0, 0))) as chamfer4_piece_13a_section:
        Polygon((CHAMFER4_SIZE, 0), (0, CHAMFER4_SIZE), (0, 0), align=None)
    chamfer4_piece_13a = extrude(amount=7.142462085, mode=Mode.PRIVATE)
    chamfer4_piece_13a = split(chamfer4_piece_13a, bisect_by=Plane(origin=(-15.328383402, 2, -3.009569189), z_dir=(1, 0, 0)), keep=Keep.TOP, mode=Mode.PRIVATE)
    with BuildSketch(Plane(origin=(-15.328383402, 2, -8.272957354), x_dir=(1, 0, 0), z_dir=(0, 0, 1))) as chamfer4_piece_13b_section:
        Polygon((CHAMFER4_SIZE, 0), (0, CHAMFER4_SIZE), (0, 0), align=None)
    chamfer4_piece_13b = extrude(amount=7.835071152, mode=Mode.PRIVATE)
    chamfer4_piece_13b = split(chamfer4_piece_13b, bisect_by=Plane(origin=(-15.328383402, 2, -3.009569189), z_dir=(0, 0, 1)), keep=Keep.TOP, mode=Mode.PRIVATE)
    chamfer4_piece_13 = chamfer4_piece_13a & chamfer4_piece_13b
    add(chamfer4_piece_13)
    with BuildSketch(Plane(origin=(11.651891874, 2, 9.363971046), x_dir=(0, 1, 0), z_dir=(0, 0, -1))) as chamfer4_piece_14a_section:
        Polygon((CHAMFER4_SIZE, 0), (0, CHAMFER4_SIZE), (0, 0), align=None)
    chamfer4_piece_14a = extrude(amount=8.143365976, mode=Mode.PRIVATE)
    chamfer4_piece_14a = split(chamfer4_piece_14a, bisect_by=Plane(origin=(11.651891874, 2, 3.792288058), z_dir=(0, 0, -1)), keep=Keep.TOP, mode=Mode.PRIVATE)
    with BuildSketch(Plane(origin=(-8.328383402, 2, 3.792288058), x_dir=(0, 0, -1), z_dir=(1, 0, 0))) as chamfer4_piece_14b_section:
        Polygon((CHAMFER4_SIZE, 0), (0, CHAMFER4_SIZE), (0, 0), align=None)
    chamfer4_piece_14b = extrude(amount=22.551958264, mode=Mode.PRIVATE)
    chamfer4_piece_14b = split(chamfer4_piece_14b, bisect_by=Plane(origin=(11.651891874, 2, 3.792288058), z_dir=(1, 0, 0)), keep=Keep.TOP, mode=Mode.PRIVATE)
    chamfer4_piece_14 = chamfer4_piece_14a & chamfer4_piece_14b
    add(chamfer4_piece_14)
    with BuildSketch(Plane(origin=(-8.328383402, 2, 1.22060507), x_dir=(0, 1, 0), z_dir=(0, 0, 1))) as chamfer4_piece_15a_section:
        Polygon((CHAMFER4_SIZE, 0), (0, CHAMFER4_SIZE), (0, 0), align=None)
    chamfer4_piece_15a = extrude(amount=7.172995726, mode=Mode.PRIVATE)
    chamfer4_piece_15a = split(chamfer4_piece_15a, bisect_by=Plane(origin=(-8.328383402, 2, 3.792288058), z_dir=(0, 0, -1)), keep=Keep.TOP, mode=Mode.PRIVATE)
    with BuildSketch(Plane(origin=(-10.90006639, 2, 3.792288058), x_dir=(0, 0, -1), z_dir=(1, 0, 0))) as chamfer4_piece_15b_section:
        Polygon((CHAMFER4_SIZE, 0), (0, CHAMFER4_SIZE), (0, 0), align=None)
    chamfer4_piece_15b = extrude(amount=22.551958264, mode=Mode.PRIVATE)
    chamfer4_piece_15b = split(chamfer4_piece_15b, bisect_by=Plane(origin=(-8.328383402, 2, 3.792288058), z_dir=(-1, 0, 0)), keep=Keep.TOP, mode=Mode.PRIVATE)
    chamfer4_piece_15b = split(chamfer4_piece_15b, bisect_by=Plane(origin=(-10.844276518, 2, 3.725340212), z_dir=(0.6401843996644799, 0, -0.7682212795973757)), keep=Keep.TOP, mode=Mode.PRIVATE)
    chamfer4_piece_15 = chamfer4_piece_15a & chamfer4_piece_15b
    add(chamfer4_piece_15)
    with BuildSketch(Plane(origin=(-8.328383402, 2, -15.226428568), x_dir=(0, 0, 1), z_dir=(1, 0, 0))) as chamfer4_piece_16a_section:
        Polygon((CHAMFER4_SIZE, 0), (0, -CHAMFER4_SIZE), (0, 0), align=None)
    chamfer4_piece_16a = extrude(amount=22.55436909, mode=Mode.PRIVATE)
    chamfer4_piece_16a = split(chamfer4_piece_16a, bisect_by=Plane(origin=(11.6543027, 2, -15.226428568), z_dir=(1, 0, 0)), keep=Keep.TOP, mode=Mode.PRIVATE)
    with BuildSketch(Plane(origin=(11.6543027, 2, -12.65474558), x_dir=(1, 0, 0), z_dir=(0, 0, -1))) as chamfer4_piece_16b_section:
        Polygon((CHAMFER4_SIZE, 0), (0, -CHAMFER4_SIZE), (0, 0), align=None)
    chamfer4_piece_16b = extrude(amount=8.143365976, mode=Mode.PRIVATE)
    chamfer4_piece_16b = split(chamfer4_piece_16b, bisect_by=Plane(origin=(11.6543027, 2, -15.226428568), z_dir=(0, 0, 1)), keep=Keep.TOP, mode=Mode.PRIVATE)
    chamfer4_piece_16 = chamfer4_piece_16a & chamfer4_piece_16b
    add(chamfer4_piece_16)
    with BuildSketch(Plane(origin=(-8.328383402, 2, -19.74976518), x_dir=(-1, 0, 0), z_dir=(0, 0, 1))) as chamfer4_piece_17a_section:
        Polygon((CHAMFER4_SIZE, 0), (0, -CHAMFER4_SIZE), (0, 0), align=None)
    chamfer4_piece_17a = extrude(amount=7.095019599, mode=Mode.PRIVATE)
    chamfer4_piece_17a = split(chamfer4_piece_17a, bisect_by=Plane(origin=(-8.328383402, 2, -15.226428568), z_dir=(0, 0, 1)), keep=Keep.TOP, mode=Mode.PRIVATE)
    with BuildSketch(Plane(origin=(-10.90006639, 2, -15.226428568), x_dir=(0, 0, 1), z_dir=(1, 0, 0))) as chamfer4_piece_17b_section:
        Polygon((CHAMFER4_SIZE, 0), (0, -CHAMFER4_SIZE), (0, 0), align=None)
    chamfer4_piece_17b = extrude(amount=22.55436909, mode=Mode.PRIVATE)
    chamfer4_piece_17b = split(chamfer4_piece_17b, bisect_by=Plane(origin=(-10.805927603, 2, -15.113462024), z_dir=(0.6401843996644802, 0, 0.7682212795973757)), keep=Keep.TOP, mode=Mode.PRIVATE)
    chamfer4_piece_17b = split(chamfer4_piece_17b, bisect_by=Plane(origin=(-8.328383402, 2, -15.226428568), z_dir=(-1, 0, 0)), keep=Keep.TOP, mode=Mode.PRIVATE)
    chamfer4_piece_17 = chamfer4_piece_17a & chamfer4_piece_17b
    add(chamfer4_piece_17)
    # the kernel refuses this chamfer: 1 mm, written as the material it takes off along each edge
    with BuildSketch(Plane(origin=(14.223574861, 12, 5.792288058), x_dir=(0, 0, -1), z_dir=(-1, 0, 0))) as chamfer4_2_piece_1:
        Polygon((CHAMFER4_SIZE, 0), (0, CHAMFER4_SIZE), (0, 0), align=None)
    extrude(amount=25.123641252, mode=Mode.SUBTRACT)
    with BuildSketch(Plane(origin=(14.225985688, 12, -17.226428568), x_dir=(0, 0, 1), z_dir=(-1, 0, 0))) as chamfer4_2_piece_2:
        Polygon((CHAMFER4_SIZE, 0), (0, -CHAMFER4_SIZE), (0, 0), align=None)
    extrude(amount=25.126052078, mode=Mode.SUBTRACT)

    # Chamfer5
    chamfer5_edges = [part.edges().sort_by_distance(p)[0] for p in [
        (-16.328383402, 6, -3.009569189),
        (-16.328383402, 6, -8.272957354),
    ]]
    chamfer(chamfer5_edges, length=CHAMFER5_SIZE)


solid = part.part
